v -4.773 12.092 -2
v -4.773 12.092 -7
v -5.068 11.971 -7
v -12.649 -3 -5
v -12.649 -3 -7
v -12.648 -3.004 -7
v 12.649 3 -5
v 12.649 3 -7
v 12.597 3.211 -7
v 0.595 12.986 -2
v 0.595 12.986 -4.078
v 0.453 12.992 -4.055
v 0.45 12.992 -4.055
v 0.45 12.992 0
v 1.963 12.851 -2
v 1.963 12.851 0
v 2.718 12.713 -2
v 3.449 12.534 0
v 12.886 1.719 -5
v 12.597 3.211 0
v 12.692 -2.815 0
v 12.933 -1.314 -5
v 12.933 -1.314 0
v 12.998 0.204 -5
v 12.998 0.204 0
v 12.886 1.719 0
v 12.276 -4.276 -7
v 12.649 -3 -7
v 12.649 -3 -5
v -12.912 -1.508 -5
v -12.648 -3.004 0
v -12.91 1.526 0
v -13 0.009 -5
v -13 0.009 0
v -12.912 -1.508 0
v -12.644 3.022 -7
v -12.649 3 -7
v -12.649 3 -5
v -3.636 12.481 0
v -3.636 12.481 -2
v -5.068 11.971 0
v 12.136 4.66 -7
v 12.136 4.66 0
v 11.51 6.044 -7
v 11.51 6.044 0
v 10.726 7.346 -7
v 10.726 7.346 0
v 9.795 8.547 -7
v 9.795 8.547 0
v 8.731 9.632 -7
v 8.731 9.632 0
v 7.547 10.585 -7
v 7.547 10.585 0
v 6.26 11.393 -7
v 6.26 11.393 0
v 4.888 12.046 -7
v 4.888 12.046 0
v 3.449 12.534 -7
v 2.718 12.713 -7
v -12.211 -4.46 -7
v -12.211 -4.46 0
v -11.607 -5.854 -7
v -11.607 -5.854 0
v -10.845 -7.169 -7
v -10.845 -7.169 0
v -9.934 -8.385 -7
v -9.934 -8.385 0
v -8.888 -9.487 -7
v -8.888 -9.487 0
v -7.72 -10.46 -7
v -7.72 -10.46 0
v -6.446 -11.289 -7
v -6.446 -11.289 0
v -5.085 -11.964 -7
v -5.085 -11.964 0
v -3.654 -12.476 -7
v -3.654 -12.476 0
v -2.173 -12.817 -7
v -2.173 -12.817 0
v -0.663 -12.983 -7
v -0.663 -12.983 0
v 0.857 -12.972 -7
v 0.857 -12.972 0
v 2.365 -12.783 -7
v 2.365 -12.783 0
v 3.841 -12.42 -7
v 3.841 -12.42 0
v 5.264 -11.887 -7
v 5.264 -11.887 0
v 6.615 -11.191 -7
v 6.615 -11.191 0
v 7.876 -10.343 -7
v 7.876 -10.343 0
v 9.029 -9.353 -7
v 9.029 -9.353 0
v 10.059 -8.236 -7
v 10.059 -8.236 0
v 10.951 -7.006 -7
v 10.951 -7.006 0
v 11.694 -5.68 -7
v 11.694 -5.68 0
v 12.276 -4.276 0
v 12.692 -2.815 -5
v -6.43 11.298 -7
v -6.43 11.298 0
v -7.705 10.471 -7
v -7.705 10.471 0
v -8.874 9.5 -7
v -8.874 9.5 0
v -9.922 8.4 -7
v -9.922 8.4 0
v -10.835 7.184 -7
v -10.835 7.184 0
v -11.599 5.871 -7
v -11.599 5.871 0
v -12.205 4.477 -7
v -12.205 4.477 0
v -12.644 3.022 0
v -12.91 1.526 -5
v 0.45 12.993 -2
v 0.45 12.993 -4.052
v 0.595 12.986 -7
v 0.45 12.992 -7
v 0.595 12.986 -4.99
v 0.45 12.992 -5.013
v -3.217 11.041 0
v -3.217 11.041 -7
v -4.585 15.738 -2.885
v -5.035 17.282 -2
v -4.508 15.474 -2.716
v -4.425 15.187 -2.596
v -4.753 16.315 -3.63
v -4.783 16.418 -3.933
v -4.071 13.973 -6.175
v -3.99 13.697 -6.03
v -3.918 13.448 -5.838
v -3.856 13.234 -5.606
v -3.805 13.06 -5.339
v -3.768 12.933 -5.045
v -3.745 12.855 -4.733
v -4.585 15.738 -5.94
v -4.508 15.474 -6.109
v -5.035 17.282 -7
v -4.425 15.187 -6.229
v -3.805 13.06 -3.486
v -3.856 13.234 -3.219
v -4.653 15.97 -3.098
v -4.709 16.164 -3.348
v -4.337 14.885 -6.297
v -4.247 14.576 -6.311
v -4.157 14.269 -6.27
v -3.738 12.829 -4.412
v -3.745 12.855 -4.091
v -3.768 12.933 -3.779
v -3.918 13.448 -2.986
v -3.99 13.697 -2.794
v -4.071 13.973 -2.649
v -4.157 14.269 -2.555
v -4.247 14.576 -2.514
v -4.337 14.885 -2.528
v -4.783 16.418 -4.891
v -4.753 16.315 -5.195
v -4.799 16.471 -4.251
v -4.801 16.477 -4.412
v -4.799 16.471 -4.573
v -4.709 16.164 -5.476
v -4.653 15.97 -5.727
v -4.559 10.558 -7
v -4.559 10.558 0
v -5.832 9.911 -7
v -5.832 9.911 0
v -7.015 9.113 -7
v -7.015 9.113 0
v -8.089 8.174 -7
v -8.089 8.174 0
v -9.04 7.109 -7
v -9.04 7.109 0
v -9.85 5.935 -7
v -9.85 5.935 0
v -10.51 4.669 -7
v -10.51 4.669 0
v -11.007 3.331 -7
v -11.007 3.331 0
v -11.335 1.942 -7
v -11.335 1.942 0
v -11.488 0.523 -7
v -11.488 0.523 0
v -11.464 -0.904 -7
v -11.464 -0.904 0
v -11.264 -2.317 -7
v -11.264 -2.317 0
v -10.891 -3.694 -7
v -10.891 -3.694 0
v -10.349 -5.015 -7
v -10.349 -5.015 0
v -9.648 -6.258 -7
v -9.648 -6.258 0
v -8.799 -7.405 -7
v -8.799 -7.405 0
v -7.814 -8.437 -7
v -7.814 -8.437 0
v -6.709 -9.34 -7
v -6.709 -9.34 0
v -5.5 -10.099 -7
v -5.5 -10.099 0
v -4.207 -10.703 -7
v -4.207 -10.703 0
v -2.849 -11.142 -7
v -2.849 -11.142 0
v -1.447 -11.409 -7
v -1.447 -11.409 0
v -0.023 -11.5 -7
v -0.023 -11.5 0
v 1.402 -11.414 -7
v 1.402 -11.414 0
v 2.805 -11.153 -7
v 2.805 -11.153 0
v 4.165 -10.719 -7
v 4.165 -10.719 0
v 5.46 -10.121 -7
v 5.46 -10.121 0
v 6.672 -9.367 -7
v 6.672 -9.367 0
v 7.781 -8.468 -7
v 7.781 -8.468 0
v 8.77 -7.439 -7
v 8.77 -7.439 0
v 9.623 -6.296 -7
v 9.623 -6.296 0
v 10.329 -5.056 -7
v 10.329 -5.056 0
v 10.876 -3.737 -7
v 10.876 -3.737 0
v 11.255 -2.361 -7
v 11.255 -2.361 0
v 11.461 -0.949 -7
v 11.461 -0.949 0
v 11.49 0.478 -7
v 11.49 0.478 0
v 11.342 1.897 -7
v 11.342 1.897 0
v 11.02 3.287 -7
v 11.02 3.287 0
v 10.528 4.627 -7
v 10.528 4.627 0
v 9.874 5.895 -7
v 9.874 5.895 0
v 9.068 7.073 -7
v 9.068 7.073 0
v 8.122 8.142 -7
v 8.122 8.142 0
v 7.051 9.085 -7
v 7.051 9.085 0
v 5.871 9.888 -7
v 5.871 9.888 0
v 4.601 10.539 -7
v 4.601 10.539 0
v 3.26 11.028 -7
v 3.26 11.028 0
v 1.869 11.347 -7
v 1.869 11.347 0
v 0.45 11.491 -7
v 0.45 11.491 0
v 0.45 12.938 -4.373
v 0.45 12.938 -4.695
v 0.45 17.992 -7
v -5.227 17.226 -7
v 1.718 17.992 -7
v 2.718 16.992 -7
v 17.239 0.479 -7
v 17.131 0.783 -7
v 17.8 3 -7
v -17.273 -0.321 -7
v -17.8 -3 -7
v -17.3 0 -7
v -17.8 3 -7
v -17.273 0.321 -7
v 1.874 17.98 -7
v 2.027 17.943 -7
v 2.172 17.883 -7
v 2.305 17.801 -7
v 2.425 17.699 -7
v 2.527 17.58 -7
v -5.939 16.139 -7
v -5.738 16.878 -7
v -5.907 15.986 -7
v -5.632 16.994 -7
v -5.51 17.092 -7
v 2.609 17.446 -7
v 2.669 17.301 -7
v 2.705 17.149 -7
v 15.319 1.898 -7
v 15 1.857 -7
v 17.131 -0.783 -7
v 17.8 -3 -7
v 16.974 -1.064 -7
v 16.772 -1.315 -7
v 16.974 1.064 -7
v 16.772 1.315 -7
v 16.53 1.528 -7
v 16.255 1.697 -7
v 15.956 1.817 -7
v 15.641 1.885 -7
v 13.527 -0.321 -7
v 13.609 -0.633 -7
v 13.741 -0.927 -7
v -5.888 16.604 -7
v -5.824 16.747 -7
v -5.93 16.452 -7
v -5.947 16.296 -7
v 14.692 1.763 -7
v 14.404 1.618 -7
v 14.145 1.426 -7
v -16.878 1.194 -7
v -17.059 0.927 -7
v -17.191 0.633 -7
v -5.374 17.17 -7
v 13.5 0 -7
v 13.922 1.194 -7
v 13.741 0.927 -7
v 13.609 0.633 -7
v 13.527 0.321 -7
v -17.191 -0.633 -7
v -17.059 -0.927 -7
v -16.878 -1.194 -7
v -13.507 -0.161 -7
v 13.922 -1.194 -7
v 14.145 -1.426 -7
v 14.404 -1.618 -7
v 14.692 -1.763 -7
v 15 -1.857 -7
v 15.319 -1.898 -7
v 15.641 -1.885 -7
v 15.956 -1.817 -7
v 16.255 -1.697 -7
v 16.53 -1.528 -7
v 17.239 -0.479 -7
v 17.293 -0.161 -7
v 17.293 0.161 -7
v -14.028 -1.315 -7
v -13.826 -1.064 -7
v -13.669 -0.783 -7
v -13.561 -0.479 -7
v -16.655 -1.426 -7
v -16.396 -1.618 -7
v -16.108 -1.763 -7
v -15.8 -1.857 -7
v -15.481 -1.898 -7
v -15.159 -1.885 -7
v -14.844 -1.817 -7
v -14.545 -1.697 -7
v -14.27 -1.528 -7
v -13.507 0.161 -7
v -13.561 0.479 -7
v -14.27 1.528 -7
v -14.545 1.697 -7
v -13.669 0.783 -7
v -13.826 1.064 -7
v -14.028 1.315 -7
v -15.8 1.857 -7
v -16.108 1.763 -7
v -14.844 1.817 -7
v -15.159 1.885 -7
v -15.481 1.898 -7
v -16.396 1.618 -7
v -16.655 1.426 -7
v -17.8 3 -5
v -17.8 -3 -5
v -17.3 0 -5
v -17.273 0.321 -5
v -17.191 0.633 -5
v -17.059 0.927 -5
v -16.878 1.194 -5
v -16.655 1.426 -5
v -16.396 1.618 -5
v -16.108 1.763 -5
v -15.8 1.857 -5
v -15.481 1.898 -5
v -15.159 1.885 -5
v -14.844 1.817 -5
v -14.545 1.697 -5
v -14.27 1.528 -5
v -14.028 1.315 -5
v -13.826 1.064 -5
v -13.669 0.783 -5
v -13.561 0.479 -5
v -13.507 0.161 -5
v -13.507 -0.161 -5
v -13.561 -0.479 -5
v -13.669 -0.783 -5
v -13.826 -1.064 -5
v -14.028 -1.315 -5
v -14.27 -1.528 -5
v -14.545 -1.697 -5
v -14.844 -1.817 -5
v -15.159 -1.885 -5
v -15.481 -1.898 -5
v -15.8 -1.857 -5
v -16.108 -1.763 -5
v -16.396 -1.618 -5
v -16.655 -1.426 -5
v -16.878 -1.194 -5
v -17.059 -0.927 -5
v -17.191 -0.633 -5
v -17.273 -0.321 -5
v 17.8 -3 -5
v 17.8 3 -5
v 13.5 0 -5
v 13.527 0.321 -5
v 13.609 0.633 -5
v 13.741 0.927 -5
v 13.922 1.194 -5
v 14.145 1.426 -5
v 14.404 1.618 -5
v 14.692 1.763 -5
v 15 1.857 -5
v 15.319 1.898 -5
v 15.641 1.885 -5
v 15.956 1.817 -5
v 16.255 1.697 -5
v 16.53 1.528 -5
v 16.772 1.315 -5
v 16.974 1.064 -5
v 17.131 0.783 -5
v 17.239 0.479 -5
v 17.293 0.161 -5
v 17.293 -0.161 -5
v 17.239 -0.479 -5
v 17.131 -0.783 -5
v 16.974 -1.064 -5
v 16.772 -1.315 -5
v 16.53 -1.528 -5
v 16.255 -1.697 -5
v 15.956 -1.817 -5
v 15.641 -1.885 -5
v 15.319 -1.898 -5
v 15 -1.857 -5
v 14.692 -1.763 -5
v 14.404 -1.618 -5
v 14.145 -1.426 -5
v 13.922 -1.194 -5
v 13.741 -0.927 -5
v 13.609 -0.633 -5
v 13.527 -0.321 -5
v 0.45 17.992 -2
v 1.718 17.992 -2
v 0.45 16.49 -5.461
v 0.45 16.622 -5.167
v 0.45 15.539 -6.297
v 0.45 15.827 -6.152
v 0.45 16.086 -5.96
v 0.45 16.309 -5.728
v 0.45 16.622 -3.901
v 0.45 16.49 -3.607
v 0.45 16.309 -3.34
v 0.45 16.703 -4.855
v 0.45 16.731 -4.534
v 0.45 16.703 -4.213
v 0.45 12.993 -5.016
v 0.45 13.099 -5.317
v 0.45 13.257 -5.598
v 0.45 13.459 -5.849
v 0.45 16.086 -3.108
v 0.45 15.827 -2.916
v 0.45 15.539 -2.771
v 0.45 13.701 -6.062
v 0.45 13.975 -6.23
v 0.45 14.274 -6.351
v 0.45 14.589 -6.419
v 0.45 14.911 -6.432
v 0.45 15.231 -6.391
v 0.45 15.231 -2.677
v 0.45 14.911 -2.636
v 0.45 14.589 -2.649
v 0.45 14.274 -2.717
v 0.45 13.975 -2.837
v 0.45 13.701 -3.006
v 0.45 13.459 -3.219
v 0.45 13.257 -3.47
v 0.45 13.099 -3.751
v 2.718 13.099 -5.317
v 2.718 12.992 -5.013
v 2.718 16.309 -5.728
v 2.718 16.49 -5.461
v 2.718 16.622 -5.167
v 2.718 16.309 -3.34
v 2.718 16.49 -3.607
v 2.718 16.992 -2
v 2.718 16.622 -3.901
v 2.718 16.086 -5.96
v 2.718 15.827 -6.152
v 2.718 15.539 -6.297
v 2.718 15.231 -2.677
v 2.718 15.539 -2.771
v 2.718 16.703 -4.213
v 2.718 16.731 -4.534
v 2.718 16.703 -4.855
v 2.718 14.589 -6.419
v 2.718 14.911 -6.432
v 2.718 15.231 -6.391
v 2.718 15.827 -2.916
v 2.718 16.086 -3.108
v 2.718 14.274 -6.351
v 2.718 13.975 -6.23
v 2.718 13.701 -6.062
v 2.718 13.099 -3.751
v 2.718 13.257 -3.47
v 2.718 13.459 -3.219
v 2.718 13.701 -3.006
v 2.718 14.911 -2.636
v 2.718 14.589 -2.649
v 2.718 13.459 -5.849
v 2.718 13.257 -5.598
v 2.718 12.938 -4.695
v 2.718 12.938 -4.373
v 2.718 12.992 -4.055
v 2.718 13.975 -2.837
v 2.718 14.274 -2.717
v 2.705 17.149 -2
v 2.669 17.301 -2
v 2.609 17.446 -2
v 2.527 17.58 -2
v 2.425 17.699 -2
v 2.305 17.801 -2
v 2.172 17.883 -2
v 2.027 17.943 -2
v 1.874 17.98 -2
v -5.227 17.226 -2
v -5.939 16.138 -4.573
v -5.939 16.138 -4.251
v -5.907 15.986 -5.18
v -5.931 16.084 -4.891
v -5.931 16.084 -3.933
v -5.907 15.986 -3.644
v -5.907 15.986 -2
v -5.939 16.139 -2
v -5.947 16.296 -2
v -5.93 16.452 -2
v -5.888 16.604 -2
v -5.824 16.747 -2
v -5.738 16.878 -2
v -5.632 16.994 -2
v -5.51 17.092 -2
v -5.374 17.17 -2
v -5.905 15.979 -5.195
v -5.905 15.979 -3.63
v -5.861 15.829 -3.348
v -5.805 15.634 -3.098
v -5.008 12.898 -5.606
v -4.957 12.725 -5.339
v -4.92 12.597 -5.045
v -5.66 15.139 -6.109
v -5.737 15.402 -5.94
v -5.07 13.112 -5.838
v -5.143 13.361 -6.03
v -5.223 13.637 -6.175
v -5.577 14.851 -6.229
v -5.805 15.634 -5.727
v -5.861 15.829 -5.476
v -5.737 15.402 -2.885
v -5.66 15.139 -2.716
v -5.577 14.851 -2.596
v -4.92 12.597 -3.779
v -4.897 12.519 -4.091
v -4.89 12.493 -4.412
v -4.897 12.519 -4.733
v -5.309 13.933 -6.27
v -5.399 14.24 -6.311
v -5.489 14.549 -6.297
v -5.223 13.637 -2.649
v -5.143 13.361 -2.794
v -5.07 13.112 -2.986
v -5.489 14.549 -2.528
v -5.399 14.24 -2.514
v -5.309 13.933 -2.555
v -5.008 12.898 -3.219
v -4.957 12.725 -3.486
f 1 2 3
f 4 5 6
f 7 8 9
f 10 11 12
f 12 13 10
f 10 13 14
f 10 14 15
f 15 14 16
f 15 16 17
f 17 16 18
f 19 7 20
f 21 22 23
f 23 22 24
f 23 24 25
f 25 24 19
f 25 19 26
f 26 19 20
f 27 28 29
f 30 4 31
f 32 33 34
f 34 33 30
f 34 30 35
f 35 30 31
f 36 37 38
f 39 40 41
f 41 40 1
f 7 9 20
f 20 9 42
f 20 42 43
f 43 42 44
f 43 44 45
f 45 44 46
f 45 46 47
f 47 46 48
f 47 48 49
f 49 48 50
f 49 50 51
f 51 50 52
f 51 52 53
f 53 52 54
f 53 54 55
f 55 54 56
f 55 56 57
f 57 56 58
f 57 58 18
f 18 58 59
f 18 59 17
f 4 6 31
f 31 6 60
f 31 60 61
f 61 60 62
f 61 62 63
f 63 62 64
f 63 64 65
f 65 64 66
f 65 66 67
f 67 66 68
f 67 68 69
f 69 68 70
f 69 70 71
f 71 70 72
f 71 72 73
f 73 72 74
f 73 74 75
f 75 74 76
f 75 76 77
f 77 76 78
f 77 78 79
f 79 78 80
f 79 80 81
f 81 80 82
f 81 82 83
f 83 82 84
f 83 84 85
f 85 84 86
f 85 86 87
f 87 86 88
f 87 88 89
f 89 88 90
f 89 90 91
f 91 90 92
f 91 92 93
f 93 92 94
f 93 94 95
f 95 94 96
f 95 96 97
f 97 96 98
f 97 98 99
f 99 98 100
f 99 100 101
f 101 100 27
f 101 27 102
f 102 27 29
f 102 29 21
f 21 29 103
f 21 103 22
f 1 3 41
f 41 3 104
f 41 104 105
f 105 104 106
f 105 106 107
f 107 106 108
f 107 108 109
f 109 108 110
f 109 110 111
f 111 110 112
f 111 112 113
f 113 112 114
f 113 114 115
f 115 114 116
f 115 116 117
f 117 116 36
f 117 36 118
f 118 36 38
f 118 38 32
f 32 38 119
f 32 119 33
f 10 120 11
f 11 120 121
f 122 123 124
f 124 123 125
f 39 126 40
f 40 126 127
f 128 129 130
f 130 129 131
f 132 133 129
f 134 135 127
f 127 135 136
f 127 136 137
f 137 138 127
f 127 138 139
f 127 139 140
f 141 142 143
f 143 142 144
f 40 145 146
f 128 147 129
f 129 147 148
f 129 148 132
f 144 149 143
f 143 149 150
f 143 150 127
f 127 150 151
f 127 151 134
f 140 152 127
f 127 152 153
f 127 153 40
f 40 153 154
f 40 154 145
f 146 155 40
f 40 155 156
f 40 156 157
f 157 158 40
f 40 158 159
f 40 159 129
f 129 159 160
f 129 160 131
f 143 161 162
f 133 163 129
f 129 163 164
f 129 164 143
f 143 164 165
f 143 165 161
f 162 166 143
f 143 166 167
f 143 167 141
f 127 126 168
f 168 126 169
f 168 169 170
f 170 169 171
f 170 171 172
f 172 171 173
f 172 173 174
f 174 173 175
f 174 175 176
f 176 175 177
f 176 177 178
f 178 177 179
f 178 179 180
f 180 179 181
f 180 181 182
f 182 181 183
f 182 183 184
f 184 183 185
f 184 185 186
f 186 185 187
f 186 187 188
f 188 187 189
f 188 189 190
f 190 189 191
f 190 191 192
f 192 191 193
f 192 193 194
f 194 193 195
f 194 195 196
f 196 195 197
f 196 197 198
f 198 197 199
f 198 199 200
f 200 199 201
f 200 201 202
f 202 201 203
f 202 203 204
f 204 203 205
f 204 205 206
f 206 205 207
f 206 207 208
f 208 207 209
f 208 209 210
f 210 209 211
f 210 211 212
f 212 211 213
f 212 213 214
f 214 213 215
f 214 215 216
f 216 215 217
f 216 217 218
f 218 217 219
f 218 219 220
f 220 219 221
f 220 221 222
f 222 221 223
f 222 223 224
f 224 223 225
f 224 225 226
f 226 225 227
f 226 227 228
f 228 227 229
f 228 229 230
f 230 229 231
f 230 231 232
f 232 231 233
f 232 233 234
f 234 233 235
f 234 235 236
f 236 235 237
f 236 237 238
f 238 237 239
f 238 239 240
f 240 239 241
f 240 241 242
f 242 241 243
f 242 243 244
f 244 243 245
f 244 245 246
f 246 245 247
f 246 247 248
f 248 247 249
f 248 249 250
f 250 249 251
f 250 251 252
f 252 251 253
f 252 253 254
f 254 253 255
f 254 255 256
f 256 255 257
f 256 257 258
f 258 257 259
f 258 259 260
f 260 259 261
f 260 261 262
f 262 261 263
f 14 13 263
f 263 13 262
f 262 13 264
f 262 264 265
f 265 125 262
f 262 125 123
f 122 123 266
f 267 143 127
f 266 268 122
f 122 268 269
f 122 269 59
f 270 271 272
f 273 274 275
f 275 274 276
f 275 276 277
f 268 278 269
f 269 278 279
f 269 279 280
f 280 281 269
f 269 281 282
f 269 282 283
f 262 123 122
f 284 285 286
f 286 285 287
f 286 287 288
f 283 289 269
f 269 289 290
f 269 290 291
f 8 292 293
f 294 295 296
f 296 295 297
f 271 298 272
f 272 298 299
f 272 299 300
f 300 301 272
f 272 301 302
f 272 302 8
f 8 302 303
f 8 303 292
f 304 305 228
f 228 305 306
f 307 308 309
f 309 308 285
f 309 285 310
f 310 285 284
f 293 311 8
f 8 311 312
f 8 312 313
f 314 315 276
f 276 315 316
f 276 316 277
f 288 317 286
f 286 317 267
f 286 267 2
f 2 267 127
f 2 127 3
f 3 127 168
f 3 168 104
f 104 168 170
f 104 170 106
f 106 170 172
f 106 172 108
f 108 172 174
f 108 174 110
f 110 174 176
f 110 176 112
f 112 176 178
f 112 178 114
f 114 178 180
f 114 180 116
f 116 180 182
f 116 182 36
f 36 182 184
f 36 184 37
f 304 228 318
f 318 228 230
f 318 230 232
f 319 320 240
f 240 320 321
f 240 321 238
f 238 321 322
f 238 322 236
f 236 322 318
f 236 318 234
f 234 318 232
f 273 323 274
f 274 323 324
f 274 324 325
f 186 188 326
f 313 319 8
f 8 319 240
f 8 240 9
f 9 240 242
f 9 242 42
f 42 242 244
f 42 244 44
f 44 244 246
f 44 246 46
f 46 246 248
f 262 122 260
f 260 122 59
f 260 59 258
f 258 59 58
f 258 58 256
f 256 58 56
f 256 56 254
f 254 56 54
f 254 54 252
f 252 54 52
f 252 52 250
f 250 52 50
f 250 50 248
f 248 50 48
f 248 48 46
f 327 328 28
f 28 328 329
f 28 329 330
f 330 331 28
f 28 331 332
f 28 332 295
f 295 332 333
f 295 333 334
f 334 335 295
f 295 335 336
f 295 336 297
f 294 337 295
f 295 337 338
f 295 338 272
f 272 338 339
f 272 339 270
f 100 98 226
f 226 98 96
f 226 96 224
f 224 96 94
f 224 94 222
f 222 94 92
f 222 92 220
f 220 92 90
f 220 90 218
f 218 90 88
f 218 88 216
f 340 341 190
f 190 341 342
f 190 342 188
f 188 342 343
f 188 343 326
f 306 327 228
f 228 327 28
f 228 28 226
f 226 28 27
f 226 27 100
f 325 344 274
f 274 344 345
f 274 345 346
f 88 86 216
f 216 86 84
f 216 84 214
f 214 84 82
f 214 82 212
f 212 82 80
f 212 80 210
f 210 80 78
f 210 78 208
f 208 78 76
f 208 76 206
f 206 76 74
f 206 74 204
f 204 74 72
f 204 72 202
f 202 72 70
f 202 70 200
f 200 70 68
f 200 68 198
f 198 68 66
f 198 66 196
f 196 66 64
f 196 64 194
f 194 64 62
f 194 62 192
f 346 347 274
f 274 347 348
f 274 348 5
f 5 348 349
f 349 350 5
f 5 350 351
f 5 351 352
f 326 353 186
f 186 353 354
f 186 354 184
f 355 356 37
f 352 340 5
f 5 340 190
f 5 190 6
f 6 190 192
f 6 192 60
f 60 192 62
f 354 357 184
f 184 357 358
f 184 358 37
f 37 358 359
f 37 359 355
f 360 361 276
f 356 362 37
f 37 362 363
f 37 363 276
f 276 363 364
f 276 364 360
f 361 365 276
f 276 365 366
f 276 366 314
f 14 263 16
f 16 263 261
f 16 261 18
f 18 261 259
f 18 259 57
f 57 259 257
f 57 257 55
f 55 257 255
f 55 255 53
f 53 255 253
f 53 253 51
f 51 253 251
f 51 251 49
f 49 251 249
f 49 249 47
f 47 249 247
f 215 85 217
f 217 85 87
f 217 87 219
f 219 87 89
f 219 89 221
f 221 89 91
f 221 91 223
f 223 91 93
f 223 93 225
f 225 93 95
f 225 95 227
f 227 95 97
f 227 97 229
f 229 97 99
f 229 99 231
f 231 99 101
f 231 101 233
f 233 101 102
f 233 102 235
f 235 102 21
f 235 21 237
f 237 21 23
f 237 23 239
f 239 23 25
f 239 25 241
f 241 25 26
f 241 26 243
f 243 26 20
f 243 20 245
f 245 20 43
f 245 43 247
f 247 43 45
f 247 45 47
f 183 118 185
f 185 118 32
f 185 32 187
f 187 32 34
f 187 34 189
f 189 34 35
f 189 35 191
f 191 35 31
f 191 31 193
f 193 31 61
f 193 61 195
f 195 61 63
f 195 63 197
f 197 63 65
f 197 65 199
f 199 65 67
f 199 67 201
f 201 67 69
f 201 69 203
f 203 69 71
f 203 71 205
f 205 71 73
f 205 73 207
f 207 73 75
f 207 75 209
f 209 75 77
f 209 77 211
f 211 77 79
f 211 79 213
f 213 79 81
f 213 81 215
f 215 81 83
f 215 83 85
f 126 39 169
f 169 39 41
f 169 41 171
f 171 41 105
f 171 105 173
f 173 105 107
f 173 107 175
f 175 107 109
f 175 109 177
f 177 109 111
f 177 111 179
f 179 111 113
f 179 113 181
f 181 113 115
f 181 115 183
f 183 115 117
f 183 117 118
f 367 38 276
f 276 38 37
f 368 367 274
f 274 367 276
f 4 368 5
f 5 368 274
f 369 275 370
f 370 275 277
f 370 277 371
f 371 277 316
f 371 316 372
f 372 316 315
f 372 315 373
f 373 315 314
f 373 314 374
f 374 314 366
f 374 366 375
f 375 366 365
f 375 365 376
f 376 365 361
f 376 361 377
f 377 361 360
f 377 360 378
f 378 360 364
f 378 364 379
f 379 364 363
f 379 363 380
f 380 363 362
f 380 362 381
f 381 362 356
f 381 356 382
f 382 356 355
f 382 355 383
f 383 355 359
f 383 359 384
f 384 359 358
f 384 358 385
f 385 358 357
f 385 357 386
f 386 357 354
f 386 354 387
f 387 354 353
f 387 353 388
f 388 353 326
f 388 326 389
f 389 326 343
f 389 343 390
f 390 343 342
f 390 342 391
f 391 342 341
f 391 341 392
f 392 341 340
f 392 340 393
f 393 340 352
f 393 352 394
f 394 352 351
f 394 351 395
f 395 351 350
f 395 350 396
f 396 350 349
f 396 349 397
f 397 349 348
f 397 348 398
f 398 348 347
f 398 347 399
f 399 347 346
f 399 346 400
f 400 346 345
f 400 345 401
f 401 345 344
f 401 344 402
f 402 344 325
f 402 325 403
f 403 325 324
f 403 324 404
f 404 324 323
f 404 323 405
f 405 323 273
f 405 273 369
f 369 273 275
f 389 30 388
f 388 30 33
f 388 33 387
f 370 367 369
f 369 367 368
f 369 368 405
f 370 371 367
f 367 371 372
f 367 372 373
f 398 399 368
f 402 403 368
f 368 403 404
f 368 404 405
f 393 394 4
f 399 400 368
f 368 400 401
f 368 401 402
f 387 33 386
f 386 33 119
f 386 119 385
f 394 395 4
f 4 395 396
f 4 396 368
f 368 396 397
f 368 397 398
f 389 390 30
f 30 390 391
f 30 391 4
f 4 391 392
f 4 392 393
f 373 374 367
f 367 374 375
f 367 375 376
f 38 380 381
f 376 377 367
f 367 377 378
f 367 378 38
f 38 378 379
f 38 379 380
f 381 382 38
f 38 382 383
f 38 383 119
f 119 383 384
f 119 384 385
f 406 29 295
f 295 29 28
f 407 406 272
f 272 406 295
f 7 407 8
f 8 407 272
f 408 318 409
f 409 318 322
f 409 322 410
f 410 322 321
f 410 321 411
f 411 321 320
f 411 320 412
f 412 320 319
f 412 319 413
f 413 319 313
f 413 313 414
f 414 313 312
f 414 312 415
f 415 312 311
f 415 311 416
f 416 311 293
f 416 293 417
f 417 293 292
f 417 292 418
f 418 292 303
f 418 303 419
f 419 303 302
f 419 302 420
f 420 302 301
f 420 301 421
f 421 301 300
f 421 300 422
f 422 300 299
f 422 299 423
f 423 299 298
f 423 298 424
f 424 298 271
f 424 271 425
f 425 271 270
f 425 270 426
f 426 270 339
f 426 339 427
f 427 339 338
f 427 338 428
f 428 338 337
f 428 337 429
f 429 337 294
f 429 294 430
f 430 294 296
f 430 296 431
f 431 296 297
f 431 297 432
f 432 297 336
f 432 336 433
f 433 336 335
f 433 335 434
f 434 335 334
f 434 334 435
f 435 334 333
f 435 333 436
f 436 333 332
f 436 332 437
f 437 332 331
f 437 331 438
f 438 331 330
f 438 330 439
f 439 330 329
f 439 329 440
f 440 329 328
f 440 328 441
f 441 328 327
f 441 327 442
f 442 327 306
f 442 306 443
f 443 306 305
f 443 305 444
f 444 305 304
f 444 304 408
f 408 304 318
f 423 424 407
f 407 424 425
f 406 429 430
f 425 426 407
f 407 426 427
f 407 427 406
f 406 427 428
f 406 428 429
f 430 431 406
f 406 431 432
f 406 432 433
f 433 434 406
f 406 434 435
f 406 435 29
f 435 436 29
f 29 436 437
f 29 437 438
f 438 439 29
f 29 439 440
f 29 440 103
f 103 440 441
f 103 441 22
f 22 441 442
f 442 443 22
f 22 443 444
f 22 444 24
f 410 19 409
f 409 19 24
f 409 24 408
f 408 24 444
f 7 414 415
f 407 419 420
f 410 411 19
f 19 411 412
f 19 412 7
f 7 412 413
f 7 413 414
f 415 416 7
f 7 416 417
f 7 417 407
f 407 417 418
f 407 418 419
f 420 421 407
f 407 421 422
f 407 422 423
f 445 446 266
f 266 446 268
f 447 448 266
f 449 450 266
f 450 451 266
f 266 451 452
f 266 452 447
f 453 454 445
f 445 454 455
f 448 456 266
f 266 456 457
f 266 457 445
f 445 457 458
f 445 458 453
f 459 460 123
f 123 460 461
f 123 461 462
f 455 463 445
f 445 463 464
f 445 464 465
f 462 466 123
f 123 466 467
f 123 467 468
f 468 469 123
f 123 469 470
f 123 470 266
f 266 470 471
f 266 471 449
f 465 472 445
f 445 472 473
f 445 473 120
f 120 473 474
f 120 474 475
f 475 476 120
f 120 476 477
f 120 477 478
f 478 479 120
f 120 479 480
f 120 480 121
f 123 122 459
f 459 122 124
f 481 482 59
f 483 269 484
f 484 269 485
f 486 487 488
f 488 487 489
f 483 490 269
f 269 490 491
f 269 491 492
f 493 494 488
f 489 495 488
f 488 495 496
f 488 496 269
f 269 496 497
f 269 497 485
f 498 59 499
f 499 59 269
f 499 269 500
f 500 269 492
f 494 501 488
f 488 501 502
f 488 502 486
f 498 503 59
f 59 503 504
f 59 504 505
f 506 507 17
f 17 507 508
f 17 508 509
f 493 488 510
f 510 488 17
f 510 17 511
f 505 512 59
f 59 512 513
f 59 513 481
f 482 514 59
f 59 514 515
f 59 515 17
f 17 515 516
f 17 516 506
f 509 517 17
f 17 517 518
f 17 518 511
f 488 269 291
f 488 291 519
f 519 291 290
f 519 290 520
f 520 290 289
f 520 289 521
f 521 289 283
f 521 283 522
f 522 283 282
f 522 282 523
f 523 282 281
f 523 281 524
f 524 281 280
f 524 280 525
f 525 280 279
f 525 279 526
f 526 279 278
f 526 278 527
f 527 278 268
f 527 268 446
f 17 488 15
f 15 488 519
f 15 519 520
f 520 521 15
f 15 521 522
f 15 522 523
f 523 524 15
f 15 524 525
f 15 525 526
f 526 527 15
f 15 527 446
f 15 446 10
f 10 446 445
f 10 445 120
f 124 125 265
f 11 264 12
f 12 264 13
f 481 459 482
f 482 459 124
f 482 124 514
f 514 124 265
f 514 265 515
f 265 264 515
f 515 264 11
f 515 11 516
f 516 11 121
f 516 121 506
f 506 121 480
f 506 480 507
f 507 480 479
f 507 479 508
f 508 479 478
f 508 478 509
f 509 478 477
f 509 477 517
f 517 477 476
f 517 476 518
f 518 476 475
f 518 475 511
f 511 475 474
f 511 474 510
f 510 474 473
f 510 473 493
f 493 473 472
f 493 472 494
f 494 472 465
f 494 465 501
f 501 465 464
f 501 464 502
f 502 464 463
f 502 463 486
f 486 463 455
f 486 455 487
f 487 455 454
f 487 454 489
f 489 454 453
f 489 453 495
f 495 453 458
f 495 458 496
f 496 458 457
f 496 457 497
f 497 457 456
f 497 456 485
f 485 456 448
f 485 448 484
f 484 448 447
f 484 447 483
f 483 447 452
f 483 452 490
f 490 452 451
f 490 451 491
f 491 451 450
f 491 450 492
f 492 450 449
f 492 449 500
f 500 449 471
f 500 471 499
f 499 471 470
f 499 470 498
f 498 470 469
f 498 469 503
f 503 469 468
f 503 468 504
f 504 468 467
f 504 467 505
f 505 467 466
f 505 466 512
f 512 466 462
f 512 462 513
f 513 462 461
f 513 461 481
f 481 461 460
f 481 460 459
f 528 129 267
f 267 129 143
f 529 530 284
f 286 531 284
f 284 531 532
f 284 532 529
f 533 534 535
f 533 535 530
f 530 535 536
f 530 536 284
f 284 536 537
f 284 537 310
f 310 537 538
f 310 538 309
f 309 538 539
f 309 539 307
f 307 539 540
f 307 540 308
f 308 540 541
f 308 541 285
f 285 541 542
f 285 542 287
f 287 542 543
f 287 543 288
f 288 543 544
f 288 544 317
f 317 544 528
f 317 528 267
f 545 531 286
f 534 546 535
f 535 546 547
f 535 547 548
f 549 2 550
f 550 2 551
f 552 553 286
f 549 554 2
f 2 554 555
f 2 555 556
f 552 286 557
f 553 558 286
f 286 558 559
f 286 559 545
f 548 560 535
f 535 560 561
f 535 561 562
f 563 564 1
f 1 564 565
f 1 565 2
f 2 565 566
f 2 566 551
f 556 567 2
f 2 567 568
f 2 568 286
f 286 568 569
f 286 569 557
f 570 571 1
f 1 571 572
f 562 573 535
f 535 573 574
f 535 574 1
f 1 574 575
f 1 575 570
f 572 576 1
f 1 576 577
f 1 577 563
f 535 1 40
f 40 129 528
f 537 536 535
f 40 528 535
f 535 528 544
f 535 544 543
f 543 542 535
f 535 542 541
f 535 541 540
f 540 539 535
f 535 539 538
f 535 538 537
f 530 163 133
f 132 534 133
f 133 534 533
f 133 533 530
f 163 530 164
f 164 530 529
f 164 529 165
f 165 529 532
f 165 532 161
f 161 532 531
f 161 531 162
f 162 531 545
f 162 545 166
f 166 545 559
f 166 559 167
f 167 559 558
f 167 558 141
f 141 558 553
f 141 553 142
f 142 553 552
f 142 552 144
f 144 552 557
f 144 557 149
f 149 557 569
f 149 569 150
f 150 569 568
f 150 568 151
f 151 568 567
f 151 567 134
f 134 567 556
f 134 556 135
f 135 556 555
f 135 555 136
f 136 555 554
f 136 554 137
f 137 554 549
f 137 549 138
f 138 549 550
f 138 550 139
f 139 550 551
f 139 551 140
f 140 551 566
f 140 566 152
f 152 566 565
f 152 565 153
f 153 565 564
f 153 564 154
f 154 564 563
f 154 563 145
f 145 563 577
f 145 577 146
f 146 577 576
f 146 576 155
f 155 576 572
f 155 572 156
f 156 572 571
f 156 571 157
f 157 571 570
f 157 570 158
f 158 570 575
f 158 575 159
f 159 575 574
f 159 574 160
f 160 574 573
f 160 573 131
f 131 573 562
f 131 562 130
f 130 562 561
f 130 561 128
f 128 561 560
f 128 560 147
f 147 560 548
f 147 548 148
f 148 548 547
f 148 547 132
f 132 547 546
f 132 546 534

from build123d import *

# Parameters (mm, degrees)
BOSS_EXTRUDE1_DEPTH = 7
BOSS_EXTRUDE2_START = -2
SKETCH2_R           = 1.9
BOSS_EXTRUDE2_DEPTH = 2
BOSS_EXTRUDE3_START = -5
BOSS_EXTRUDE3_DEPTH = 5
SKETCH4_R           = 1.9
CUT_EXTRUDE1_DEPTH  = 5
BOSS_EXTRUDE4_START = -5
BOSS_EXTRUDE4_DEPTH = 5
SKETCH6_R           = 1.9
CUT_EXTRUDE2_DEPTH  = 4


with BuildPart() as part:
    # Sketch1 → Boss-Extrude1 (new body)
    with BuildSketch(Plane.XY):
        with BuildLine():
            Line((-3.636312194, 12.481075019), (-3.21673771, 11.040950978))
            ThreePointArc((-3.21673771, 11.040950978), (1.401778308, -11.414246255), (0.449573558, 11.491208971))
            Line((0.449573558, 11.491208971), (0.449573558, 12.992223967))
            ThreePointArc((0.449573558, 12.992223967), (1.613736067, -12.899451768), (-3.636312194, 12.481075019))
        make_face()
    extrude(amount=-BOSS_EXTRUDE1_DEPTH)

    # Sketch2 → Boss-Extrude2 (add)
    # profile 1 of 6: a face of its own
    with BuildSketch(Plane(origin=(0, 0, -7), x_dir=(-1, 0, 0), z_dir=(0, 0, -1)).offset(BOSS_EXTRUDE2_START)):
        Polygon((13, -1.4e-08), (13, -3), (17.8, -3), (17.8, 3), (13, 3), align=None)
        with Locations((15.4, 0)):
            Circle(SKETCH2_R, mode=Mode.SUBTRACT)
    # profile 2 of 6: a face of its own
    with BuildSketch(Plane(origin=(0, 0, -7), x_dir=(-1, 0, 0), z_dir=(0, 0, -1)).offset(BOSS_EXTRUDE2_START)):
        with BuildLine():
            ThreePointArc((13, -1.4e-08), (12.911979676, -1.510225432), (12.649110641, -3))
            Line((12.649110641, -3), (13, -3))
            Line((13, -3), (13, -1.4e-08))
        make_face()
    # profile 3 of 6: a face of its own
    with BuildSketch(Plane(origin=(0, 0, -7), x_dir=(-1, 0, 0), z_dir=(0, 0, -1)).offset(BOSS_EXTRUDE2_START)):
        with BuildLine():
            ThreePointArc((12.649110641, 3), (12.911979677, 1.510225419), (13, -1.4e-08))
            Line((13, -1.4e-08), (13, 3))
            Line((13, 3), (12.649110641, 3))
        make_face()
    # profile 4 of 6: a face of its own
    with BuildSketch(Plane(origin=(0, 0, -7), x_dir=(-1, 0, 0), z_dir=(0, 0, -1)).offset(BOSS_EXTRUDE2_START)):
        Polygon((-17.8, -3), (-13, -3), (-13, 2e-09), (-13, 3), (-17.8, 3), align=None)
        with Locations((-15.4, 0)):
            Circle(SKETCH2_R, mode=Mode.SUBTRACT)
    # profile 5 of 6: a face of its own
    with BuildSketch(Plane(origin=(0, 0, -7), x_dir=(-1, 0, 0), z_dir=(0, 0, -1)).offset(BOSS_EXTRUDE2_START)):
        with BuildLine():
            Line((-13, -3), (-12.649110641, -3))
            ThreePointArc((-12.649110641, -3), (-12.911979677, -1.510225425), (-13, 2e-09))
            Line((-13, 2e-09), (-13, -3))
        make_face()
    # profile 6 of 6: a face of its own
    with BuildSketch(Plane(origin=(0, 0, -7), x_dir=(-1, 0, 0), z_dir=(0, 0, -1)).offset(BOSS_EXTRUDE2_START)):
        with BuildLine():
            Line((-13, 3), (-13, 2e-09))
            ThreePointArc((-13, 2e-09), (-12.911979676, 1.510225426), (-12.649110641, 3))
            Line((-12.649110641, 3), (-13, 3))
        make_face()
    extrude(amount=BOSS_EXTRUDE2_DEPTH)

    # Sketch3 → Boss-Extrude3 (add)
    with BuildSketch(Plane(origin=(0, 0, -7), x_dir=(-1, 0, 0), z_dir=(0, 0, -1)).offset(BOSS_EXTRUDE3_START)):
        with BuildLine():
            Line((-1.717517475, 17.992223967), (-0.449573558, 17.992223967))
            Line((-0.449573558, 17.992223967), (-0.449573558, 13))
            Line((-0.449573558, 13), (-2.717517475, 13))
            Line((-2.717517475, 13), (-2.717517475, 16.992223967))
            ThreePointArc((-2.717517475, 16.992223967), (-2.424624256, 17.699330748), (-1.717517475, 17.992223967))
        make_face()
        with BuildLine():
            Line((-0.595067825, 12.986373408), (-2.717517475, 12.889117574))
            Line((-2.717517475, 12.889117574), (-2.717517475, 12.712792721))
            ThreePointArc((-2.717517475, 12.712792721), (-1.661931689, 12.893330953), (-0.595067825, 12.986373408))
        make_face()
        Polygon((-2.717517475, 13), (-2.717517475, 12.889117574), (-0.595067825, 12.986373408), (-0.449573558, 12.993040311), (-0.449573558, 13), align=None)
    extrude(amount=BOSS_EXTRUDE3_DEPTH)

    # Sketch4 → Cut-Extrude1 (cut)
    with BuildSketch(Plane(origin=(2.717517475, 0, 0), x_dir=(0, 0, -1), z_dir=(1, 0, 0))):
        with Locations(Location((4.533929619, 14.83079483, 0), (0, 0, 90))):
            Circle(SKETCH4_R)
    extrude(amount=-CUT_EXTRUDE1_DEPTH, mode=Mode.SUBTRACT)

    # Sketch5 → Boss-Extrude4 (add)
    with BuildSketch(Plane(origin=(0, 0, -7), x_dir=(-1, 0, 0), z_dir=(0, 0, -1)).offset(BOSS_EXTRUDE4_START)):
        with BuildLine():
            Line((5.034893807, 17.281488488), (3.691292994, 12.669788048))
            Line((3.691292994, 12.669788048), (4.784802098, 12.133026974))
            Line((4.784802098, 12.133026974), (5.907276717, 15.985746207))
            ThreePointArc((5.907276717, 15.985746207), (5.823864315, 16.746554204), (5.226910346, 17.225545223))
            Line((5.226910346, 17.225545223), (5.034893807, 17.281488488))
        make_face()
        with BuildLine():
            Line((4.784802098, 12.133026974), (3.691292994, 12.669788048))
            Line((3.691292994, 12.669788048), (3.636312194, 12.481075019))
            ThreePointArc((3.636312194, 12.481075019), (4.209094298, 12.299736793), (4.772886303, 12.092127866))
            Line((4.772886303, 12.092127866), (4.784802098, 12.133026974))
        make_face()
    extrude(amount=BOSS_EXTRUDE4_DEPTH)

    # Sketch6 → Cut-Extrude2 (cut)
    with BuildSketch(Plane(origin=(-1.152099233, -0.335659587, 0), x_dir=(0, 0, 1), z_dir=(-0.9600826937679848, -0.2797163225970375, 0))):
        with Locations(Location((-4.412219036, 15.262129774, 0), (0, 0, 66.15869914))):
            Circle(SKETCH6_R)
    extrude(amount=-CUT_EXTRUDE2_DEPTH, mode=Mode.SUBTRACT)


solid = part.part
